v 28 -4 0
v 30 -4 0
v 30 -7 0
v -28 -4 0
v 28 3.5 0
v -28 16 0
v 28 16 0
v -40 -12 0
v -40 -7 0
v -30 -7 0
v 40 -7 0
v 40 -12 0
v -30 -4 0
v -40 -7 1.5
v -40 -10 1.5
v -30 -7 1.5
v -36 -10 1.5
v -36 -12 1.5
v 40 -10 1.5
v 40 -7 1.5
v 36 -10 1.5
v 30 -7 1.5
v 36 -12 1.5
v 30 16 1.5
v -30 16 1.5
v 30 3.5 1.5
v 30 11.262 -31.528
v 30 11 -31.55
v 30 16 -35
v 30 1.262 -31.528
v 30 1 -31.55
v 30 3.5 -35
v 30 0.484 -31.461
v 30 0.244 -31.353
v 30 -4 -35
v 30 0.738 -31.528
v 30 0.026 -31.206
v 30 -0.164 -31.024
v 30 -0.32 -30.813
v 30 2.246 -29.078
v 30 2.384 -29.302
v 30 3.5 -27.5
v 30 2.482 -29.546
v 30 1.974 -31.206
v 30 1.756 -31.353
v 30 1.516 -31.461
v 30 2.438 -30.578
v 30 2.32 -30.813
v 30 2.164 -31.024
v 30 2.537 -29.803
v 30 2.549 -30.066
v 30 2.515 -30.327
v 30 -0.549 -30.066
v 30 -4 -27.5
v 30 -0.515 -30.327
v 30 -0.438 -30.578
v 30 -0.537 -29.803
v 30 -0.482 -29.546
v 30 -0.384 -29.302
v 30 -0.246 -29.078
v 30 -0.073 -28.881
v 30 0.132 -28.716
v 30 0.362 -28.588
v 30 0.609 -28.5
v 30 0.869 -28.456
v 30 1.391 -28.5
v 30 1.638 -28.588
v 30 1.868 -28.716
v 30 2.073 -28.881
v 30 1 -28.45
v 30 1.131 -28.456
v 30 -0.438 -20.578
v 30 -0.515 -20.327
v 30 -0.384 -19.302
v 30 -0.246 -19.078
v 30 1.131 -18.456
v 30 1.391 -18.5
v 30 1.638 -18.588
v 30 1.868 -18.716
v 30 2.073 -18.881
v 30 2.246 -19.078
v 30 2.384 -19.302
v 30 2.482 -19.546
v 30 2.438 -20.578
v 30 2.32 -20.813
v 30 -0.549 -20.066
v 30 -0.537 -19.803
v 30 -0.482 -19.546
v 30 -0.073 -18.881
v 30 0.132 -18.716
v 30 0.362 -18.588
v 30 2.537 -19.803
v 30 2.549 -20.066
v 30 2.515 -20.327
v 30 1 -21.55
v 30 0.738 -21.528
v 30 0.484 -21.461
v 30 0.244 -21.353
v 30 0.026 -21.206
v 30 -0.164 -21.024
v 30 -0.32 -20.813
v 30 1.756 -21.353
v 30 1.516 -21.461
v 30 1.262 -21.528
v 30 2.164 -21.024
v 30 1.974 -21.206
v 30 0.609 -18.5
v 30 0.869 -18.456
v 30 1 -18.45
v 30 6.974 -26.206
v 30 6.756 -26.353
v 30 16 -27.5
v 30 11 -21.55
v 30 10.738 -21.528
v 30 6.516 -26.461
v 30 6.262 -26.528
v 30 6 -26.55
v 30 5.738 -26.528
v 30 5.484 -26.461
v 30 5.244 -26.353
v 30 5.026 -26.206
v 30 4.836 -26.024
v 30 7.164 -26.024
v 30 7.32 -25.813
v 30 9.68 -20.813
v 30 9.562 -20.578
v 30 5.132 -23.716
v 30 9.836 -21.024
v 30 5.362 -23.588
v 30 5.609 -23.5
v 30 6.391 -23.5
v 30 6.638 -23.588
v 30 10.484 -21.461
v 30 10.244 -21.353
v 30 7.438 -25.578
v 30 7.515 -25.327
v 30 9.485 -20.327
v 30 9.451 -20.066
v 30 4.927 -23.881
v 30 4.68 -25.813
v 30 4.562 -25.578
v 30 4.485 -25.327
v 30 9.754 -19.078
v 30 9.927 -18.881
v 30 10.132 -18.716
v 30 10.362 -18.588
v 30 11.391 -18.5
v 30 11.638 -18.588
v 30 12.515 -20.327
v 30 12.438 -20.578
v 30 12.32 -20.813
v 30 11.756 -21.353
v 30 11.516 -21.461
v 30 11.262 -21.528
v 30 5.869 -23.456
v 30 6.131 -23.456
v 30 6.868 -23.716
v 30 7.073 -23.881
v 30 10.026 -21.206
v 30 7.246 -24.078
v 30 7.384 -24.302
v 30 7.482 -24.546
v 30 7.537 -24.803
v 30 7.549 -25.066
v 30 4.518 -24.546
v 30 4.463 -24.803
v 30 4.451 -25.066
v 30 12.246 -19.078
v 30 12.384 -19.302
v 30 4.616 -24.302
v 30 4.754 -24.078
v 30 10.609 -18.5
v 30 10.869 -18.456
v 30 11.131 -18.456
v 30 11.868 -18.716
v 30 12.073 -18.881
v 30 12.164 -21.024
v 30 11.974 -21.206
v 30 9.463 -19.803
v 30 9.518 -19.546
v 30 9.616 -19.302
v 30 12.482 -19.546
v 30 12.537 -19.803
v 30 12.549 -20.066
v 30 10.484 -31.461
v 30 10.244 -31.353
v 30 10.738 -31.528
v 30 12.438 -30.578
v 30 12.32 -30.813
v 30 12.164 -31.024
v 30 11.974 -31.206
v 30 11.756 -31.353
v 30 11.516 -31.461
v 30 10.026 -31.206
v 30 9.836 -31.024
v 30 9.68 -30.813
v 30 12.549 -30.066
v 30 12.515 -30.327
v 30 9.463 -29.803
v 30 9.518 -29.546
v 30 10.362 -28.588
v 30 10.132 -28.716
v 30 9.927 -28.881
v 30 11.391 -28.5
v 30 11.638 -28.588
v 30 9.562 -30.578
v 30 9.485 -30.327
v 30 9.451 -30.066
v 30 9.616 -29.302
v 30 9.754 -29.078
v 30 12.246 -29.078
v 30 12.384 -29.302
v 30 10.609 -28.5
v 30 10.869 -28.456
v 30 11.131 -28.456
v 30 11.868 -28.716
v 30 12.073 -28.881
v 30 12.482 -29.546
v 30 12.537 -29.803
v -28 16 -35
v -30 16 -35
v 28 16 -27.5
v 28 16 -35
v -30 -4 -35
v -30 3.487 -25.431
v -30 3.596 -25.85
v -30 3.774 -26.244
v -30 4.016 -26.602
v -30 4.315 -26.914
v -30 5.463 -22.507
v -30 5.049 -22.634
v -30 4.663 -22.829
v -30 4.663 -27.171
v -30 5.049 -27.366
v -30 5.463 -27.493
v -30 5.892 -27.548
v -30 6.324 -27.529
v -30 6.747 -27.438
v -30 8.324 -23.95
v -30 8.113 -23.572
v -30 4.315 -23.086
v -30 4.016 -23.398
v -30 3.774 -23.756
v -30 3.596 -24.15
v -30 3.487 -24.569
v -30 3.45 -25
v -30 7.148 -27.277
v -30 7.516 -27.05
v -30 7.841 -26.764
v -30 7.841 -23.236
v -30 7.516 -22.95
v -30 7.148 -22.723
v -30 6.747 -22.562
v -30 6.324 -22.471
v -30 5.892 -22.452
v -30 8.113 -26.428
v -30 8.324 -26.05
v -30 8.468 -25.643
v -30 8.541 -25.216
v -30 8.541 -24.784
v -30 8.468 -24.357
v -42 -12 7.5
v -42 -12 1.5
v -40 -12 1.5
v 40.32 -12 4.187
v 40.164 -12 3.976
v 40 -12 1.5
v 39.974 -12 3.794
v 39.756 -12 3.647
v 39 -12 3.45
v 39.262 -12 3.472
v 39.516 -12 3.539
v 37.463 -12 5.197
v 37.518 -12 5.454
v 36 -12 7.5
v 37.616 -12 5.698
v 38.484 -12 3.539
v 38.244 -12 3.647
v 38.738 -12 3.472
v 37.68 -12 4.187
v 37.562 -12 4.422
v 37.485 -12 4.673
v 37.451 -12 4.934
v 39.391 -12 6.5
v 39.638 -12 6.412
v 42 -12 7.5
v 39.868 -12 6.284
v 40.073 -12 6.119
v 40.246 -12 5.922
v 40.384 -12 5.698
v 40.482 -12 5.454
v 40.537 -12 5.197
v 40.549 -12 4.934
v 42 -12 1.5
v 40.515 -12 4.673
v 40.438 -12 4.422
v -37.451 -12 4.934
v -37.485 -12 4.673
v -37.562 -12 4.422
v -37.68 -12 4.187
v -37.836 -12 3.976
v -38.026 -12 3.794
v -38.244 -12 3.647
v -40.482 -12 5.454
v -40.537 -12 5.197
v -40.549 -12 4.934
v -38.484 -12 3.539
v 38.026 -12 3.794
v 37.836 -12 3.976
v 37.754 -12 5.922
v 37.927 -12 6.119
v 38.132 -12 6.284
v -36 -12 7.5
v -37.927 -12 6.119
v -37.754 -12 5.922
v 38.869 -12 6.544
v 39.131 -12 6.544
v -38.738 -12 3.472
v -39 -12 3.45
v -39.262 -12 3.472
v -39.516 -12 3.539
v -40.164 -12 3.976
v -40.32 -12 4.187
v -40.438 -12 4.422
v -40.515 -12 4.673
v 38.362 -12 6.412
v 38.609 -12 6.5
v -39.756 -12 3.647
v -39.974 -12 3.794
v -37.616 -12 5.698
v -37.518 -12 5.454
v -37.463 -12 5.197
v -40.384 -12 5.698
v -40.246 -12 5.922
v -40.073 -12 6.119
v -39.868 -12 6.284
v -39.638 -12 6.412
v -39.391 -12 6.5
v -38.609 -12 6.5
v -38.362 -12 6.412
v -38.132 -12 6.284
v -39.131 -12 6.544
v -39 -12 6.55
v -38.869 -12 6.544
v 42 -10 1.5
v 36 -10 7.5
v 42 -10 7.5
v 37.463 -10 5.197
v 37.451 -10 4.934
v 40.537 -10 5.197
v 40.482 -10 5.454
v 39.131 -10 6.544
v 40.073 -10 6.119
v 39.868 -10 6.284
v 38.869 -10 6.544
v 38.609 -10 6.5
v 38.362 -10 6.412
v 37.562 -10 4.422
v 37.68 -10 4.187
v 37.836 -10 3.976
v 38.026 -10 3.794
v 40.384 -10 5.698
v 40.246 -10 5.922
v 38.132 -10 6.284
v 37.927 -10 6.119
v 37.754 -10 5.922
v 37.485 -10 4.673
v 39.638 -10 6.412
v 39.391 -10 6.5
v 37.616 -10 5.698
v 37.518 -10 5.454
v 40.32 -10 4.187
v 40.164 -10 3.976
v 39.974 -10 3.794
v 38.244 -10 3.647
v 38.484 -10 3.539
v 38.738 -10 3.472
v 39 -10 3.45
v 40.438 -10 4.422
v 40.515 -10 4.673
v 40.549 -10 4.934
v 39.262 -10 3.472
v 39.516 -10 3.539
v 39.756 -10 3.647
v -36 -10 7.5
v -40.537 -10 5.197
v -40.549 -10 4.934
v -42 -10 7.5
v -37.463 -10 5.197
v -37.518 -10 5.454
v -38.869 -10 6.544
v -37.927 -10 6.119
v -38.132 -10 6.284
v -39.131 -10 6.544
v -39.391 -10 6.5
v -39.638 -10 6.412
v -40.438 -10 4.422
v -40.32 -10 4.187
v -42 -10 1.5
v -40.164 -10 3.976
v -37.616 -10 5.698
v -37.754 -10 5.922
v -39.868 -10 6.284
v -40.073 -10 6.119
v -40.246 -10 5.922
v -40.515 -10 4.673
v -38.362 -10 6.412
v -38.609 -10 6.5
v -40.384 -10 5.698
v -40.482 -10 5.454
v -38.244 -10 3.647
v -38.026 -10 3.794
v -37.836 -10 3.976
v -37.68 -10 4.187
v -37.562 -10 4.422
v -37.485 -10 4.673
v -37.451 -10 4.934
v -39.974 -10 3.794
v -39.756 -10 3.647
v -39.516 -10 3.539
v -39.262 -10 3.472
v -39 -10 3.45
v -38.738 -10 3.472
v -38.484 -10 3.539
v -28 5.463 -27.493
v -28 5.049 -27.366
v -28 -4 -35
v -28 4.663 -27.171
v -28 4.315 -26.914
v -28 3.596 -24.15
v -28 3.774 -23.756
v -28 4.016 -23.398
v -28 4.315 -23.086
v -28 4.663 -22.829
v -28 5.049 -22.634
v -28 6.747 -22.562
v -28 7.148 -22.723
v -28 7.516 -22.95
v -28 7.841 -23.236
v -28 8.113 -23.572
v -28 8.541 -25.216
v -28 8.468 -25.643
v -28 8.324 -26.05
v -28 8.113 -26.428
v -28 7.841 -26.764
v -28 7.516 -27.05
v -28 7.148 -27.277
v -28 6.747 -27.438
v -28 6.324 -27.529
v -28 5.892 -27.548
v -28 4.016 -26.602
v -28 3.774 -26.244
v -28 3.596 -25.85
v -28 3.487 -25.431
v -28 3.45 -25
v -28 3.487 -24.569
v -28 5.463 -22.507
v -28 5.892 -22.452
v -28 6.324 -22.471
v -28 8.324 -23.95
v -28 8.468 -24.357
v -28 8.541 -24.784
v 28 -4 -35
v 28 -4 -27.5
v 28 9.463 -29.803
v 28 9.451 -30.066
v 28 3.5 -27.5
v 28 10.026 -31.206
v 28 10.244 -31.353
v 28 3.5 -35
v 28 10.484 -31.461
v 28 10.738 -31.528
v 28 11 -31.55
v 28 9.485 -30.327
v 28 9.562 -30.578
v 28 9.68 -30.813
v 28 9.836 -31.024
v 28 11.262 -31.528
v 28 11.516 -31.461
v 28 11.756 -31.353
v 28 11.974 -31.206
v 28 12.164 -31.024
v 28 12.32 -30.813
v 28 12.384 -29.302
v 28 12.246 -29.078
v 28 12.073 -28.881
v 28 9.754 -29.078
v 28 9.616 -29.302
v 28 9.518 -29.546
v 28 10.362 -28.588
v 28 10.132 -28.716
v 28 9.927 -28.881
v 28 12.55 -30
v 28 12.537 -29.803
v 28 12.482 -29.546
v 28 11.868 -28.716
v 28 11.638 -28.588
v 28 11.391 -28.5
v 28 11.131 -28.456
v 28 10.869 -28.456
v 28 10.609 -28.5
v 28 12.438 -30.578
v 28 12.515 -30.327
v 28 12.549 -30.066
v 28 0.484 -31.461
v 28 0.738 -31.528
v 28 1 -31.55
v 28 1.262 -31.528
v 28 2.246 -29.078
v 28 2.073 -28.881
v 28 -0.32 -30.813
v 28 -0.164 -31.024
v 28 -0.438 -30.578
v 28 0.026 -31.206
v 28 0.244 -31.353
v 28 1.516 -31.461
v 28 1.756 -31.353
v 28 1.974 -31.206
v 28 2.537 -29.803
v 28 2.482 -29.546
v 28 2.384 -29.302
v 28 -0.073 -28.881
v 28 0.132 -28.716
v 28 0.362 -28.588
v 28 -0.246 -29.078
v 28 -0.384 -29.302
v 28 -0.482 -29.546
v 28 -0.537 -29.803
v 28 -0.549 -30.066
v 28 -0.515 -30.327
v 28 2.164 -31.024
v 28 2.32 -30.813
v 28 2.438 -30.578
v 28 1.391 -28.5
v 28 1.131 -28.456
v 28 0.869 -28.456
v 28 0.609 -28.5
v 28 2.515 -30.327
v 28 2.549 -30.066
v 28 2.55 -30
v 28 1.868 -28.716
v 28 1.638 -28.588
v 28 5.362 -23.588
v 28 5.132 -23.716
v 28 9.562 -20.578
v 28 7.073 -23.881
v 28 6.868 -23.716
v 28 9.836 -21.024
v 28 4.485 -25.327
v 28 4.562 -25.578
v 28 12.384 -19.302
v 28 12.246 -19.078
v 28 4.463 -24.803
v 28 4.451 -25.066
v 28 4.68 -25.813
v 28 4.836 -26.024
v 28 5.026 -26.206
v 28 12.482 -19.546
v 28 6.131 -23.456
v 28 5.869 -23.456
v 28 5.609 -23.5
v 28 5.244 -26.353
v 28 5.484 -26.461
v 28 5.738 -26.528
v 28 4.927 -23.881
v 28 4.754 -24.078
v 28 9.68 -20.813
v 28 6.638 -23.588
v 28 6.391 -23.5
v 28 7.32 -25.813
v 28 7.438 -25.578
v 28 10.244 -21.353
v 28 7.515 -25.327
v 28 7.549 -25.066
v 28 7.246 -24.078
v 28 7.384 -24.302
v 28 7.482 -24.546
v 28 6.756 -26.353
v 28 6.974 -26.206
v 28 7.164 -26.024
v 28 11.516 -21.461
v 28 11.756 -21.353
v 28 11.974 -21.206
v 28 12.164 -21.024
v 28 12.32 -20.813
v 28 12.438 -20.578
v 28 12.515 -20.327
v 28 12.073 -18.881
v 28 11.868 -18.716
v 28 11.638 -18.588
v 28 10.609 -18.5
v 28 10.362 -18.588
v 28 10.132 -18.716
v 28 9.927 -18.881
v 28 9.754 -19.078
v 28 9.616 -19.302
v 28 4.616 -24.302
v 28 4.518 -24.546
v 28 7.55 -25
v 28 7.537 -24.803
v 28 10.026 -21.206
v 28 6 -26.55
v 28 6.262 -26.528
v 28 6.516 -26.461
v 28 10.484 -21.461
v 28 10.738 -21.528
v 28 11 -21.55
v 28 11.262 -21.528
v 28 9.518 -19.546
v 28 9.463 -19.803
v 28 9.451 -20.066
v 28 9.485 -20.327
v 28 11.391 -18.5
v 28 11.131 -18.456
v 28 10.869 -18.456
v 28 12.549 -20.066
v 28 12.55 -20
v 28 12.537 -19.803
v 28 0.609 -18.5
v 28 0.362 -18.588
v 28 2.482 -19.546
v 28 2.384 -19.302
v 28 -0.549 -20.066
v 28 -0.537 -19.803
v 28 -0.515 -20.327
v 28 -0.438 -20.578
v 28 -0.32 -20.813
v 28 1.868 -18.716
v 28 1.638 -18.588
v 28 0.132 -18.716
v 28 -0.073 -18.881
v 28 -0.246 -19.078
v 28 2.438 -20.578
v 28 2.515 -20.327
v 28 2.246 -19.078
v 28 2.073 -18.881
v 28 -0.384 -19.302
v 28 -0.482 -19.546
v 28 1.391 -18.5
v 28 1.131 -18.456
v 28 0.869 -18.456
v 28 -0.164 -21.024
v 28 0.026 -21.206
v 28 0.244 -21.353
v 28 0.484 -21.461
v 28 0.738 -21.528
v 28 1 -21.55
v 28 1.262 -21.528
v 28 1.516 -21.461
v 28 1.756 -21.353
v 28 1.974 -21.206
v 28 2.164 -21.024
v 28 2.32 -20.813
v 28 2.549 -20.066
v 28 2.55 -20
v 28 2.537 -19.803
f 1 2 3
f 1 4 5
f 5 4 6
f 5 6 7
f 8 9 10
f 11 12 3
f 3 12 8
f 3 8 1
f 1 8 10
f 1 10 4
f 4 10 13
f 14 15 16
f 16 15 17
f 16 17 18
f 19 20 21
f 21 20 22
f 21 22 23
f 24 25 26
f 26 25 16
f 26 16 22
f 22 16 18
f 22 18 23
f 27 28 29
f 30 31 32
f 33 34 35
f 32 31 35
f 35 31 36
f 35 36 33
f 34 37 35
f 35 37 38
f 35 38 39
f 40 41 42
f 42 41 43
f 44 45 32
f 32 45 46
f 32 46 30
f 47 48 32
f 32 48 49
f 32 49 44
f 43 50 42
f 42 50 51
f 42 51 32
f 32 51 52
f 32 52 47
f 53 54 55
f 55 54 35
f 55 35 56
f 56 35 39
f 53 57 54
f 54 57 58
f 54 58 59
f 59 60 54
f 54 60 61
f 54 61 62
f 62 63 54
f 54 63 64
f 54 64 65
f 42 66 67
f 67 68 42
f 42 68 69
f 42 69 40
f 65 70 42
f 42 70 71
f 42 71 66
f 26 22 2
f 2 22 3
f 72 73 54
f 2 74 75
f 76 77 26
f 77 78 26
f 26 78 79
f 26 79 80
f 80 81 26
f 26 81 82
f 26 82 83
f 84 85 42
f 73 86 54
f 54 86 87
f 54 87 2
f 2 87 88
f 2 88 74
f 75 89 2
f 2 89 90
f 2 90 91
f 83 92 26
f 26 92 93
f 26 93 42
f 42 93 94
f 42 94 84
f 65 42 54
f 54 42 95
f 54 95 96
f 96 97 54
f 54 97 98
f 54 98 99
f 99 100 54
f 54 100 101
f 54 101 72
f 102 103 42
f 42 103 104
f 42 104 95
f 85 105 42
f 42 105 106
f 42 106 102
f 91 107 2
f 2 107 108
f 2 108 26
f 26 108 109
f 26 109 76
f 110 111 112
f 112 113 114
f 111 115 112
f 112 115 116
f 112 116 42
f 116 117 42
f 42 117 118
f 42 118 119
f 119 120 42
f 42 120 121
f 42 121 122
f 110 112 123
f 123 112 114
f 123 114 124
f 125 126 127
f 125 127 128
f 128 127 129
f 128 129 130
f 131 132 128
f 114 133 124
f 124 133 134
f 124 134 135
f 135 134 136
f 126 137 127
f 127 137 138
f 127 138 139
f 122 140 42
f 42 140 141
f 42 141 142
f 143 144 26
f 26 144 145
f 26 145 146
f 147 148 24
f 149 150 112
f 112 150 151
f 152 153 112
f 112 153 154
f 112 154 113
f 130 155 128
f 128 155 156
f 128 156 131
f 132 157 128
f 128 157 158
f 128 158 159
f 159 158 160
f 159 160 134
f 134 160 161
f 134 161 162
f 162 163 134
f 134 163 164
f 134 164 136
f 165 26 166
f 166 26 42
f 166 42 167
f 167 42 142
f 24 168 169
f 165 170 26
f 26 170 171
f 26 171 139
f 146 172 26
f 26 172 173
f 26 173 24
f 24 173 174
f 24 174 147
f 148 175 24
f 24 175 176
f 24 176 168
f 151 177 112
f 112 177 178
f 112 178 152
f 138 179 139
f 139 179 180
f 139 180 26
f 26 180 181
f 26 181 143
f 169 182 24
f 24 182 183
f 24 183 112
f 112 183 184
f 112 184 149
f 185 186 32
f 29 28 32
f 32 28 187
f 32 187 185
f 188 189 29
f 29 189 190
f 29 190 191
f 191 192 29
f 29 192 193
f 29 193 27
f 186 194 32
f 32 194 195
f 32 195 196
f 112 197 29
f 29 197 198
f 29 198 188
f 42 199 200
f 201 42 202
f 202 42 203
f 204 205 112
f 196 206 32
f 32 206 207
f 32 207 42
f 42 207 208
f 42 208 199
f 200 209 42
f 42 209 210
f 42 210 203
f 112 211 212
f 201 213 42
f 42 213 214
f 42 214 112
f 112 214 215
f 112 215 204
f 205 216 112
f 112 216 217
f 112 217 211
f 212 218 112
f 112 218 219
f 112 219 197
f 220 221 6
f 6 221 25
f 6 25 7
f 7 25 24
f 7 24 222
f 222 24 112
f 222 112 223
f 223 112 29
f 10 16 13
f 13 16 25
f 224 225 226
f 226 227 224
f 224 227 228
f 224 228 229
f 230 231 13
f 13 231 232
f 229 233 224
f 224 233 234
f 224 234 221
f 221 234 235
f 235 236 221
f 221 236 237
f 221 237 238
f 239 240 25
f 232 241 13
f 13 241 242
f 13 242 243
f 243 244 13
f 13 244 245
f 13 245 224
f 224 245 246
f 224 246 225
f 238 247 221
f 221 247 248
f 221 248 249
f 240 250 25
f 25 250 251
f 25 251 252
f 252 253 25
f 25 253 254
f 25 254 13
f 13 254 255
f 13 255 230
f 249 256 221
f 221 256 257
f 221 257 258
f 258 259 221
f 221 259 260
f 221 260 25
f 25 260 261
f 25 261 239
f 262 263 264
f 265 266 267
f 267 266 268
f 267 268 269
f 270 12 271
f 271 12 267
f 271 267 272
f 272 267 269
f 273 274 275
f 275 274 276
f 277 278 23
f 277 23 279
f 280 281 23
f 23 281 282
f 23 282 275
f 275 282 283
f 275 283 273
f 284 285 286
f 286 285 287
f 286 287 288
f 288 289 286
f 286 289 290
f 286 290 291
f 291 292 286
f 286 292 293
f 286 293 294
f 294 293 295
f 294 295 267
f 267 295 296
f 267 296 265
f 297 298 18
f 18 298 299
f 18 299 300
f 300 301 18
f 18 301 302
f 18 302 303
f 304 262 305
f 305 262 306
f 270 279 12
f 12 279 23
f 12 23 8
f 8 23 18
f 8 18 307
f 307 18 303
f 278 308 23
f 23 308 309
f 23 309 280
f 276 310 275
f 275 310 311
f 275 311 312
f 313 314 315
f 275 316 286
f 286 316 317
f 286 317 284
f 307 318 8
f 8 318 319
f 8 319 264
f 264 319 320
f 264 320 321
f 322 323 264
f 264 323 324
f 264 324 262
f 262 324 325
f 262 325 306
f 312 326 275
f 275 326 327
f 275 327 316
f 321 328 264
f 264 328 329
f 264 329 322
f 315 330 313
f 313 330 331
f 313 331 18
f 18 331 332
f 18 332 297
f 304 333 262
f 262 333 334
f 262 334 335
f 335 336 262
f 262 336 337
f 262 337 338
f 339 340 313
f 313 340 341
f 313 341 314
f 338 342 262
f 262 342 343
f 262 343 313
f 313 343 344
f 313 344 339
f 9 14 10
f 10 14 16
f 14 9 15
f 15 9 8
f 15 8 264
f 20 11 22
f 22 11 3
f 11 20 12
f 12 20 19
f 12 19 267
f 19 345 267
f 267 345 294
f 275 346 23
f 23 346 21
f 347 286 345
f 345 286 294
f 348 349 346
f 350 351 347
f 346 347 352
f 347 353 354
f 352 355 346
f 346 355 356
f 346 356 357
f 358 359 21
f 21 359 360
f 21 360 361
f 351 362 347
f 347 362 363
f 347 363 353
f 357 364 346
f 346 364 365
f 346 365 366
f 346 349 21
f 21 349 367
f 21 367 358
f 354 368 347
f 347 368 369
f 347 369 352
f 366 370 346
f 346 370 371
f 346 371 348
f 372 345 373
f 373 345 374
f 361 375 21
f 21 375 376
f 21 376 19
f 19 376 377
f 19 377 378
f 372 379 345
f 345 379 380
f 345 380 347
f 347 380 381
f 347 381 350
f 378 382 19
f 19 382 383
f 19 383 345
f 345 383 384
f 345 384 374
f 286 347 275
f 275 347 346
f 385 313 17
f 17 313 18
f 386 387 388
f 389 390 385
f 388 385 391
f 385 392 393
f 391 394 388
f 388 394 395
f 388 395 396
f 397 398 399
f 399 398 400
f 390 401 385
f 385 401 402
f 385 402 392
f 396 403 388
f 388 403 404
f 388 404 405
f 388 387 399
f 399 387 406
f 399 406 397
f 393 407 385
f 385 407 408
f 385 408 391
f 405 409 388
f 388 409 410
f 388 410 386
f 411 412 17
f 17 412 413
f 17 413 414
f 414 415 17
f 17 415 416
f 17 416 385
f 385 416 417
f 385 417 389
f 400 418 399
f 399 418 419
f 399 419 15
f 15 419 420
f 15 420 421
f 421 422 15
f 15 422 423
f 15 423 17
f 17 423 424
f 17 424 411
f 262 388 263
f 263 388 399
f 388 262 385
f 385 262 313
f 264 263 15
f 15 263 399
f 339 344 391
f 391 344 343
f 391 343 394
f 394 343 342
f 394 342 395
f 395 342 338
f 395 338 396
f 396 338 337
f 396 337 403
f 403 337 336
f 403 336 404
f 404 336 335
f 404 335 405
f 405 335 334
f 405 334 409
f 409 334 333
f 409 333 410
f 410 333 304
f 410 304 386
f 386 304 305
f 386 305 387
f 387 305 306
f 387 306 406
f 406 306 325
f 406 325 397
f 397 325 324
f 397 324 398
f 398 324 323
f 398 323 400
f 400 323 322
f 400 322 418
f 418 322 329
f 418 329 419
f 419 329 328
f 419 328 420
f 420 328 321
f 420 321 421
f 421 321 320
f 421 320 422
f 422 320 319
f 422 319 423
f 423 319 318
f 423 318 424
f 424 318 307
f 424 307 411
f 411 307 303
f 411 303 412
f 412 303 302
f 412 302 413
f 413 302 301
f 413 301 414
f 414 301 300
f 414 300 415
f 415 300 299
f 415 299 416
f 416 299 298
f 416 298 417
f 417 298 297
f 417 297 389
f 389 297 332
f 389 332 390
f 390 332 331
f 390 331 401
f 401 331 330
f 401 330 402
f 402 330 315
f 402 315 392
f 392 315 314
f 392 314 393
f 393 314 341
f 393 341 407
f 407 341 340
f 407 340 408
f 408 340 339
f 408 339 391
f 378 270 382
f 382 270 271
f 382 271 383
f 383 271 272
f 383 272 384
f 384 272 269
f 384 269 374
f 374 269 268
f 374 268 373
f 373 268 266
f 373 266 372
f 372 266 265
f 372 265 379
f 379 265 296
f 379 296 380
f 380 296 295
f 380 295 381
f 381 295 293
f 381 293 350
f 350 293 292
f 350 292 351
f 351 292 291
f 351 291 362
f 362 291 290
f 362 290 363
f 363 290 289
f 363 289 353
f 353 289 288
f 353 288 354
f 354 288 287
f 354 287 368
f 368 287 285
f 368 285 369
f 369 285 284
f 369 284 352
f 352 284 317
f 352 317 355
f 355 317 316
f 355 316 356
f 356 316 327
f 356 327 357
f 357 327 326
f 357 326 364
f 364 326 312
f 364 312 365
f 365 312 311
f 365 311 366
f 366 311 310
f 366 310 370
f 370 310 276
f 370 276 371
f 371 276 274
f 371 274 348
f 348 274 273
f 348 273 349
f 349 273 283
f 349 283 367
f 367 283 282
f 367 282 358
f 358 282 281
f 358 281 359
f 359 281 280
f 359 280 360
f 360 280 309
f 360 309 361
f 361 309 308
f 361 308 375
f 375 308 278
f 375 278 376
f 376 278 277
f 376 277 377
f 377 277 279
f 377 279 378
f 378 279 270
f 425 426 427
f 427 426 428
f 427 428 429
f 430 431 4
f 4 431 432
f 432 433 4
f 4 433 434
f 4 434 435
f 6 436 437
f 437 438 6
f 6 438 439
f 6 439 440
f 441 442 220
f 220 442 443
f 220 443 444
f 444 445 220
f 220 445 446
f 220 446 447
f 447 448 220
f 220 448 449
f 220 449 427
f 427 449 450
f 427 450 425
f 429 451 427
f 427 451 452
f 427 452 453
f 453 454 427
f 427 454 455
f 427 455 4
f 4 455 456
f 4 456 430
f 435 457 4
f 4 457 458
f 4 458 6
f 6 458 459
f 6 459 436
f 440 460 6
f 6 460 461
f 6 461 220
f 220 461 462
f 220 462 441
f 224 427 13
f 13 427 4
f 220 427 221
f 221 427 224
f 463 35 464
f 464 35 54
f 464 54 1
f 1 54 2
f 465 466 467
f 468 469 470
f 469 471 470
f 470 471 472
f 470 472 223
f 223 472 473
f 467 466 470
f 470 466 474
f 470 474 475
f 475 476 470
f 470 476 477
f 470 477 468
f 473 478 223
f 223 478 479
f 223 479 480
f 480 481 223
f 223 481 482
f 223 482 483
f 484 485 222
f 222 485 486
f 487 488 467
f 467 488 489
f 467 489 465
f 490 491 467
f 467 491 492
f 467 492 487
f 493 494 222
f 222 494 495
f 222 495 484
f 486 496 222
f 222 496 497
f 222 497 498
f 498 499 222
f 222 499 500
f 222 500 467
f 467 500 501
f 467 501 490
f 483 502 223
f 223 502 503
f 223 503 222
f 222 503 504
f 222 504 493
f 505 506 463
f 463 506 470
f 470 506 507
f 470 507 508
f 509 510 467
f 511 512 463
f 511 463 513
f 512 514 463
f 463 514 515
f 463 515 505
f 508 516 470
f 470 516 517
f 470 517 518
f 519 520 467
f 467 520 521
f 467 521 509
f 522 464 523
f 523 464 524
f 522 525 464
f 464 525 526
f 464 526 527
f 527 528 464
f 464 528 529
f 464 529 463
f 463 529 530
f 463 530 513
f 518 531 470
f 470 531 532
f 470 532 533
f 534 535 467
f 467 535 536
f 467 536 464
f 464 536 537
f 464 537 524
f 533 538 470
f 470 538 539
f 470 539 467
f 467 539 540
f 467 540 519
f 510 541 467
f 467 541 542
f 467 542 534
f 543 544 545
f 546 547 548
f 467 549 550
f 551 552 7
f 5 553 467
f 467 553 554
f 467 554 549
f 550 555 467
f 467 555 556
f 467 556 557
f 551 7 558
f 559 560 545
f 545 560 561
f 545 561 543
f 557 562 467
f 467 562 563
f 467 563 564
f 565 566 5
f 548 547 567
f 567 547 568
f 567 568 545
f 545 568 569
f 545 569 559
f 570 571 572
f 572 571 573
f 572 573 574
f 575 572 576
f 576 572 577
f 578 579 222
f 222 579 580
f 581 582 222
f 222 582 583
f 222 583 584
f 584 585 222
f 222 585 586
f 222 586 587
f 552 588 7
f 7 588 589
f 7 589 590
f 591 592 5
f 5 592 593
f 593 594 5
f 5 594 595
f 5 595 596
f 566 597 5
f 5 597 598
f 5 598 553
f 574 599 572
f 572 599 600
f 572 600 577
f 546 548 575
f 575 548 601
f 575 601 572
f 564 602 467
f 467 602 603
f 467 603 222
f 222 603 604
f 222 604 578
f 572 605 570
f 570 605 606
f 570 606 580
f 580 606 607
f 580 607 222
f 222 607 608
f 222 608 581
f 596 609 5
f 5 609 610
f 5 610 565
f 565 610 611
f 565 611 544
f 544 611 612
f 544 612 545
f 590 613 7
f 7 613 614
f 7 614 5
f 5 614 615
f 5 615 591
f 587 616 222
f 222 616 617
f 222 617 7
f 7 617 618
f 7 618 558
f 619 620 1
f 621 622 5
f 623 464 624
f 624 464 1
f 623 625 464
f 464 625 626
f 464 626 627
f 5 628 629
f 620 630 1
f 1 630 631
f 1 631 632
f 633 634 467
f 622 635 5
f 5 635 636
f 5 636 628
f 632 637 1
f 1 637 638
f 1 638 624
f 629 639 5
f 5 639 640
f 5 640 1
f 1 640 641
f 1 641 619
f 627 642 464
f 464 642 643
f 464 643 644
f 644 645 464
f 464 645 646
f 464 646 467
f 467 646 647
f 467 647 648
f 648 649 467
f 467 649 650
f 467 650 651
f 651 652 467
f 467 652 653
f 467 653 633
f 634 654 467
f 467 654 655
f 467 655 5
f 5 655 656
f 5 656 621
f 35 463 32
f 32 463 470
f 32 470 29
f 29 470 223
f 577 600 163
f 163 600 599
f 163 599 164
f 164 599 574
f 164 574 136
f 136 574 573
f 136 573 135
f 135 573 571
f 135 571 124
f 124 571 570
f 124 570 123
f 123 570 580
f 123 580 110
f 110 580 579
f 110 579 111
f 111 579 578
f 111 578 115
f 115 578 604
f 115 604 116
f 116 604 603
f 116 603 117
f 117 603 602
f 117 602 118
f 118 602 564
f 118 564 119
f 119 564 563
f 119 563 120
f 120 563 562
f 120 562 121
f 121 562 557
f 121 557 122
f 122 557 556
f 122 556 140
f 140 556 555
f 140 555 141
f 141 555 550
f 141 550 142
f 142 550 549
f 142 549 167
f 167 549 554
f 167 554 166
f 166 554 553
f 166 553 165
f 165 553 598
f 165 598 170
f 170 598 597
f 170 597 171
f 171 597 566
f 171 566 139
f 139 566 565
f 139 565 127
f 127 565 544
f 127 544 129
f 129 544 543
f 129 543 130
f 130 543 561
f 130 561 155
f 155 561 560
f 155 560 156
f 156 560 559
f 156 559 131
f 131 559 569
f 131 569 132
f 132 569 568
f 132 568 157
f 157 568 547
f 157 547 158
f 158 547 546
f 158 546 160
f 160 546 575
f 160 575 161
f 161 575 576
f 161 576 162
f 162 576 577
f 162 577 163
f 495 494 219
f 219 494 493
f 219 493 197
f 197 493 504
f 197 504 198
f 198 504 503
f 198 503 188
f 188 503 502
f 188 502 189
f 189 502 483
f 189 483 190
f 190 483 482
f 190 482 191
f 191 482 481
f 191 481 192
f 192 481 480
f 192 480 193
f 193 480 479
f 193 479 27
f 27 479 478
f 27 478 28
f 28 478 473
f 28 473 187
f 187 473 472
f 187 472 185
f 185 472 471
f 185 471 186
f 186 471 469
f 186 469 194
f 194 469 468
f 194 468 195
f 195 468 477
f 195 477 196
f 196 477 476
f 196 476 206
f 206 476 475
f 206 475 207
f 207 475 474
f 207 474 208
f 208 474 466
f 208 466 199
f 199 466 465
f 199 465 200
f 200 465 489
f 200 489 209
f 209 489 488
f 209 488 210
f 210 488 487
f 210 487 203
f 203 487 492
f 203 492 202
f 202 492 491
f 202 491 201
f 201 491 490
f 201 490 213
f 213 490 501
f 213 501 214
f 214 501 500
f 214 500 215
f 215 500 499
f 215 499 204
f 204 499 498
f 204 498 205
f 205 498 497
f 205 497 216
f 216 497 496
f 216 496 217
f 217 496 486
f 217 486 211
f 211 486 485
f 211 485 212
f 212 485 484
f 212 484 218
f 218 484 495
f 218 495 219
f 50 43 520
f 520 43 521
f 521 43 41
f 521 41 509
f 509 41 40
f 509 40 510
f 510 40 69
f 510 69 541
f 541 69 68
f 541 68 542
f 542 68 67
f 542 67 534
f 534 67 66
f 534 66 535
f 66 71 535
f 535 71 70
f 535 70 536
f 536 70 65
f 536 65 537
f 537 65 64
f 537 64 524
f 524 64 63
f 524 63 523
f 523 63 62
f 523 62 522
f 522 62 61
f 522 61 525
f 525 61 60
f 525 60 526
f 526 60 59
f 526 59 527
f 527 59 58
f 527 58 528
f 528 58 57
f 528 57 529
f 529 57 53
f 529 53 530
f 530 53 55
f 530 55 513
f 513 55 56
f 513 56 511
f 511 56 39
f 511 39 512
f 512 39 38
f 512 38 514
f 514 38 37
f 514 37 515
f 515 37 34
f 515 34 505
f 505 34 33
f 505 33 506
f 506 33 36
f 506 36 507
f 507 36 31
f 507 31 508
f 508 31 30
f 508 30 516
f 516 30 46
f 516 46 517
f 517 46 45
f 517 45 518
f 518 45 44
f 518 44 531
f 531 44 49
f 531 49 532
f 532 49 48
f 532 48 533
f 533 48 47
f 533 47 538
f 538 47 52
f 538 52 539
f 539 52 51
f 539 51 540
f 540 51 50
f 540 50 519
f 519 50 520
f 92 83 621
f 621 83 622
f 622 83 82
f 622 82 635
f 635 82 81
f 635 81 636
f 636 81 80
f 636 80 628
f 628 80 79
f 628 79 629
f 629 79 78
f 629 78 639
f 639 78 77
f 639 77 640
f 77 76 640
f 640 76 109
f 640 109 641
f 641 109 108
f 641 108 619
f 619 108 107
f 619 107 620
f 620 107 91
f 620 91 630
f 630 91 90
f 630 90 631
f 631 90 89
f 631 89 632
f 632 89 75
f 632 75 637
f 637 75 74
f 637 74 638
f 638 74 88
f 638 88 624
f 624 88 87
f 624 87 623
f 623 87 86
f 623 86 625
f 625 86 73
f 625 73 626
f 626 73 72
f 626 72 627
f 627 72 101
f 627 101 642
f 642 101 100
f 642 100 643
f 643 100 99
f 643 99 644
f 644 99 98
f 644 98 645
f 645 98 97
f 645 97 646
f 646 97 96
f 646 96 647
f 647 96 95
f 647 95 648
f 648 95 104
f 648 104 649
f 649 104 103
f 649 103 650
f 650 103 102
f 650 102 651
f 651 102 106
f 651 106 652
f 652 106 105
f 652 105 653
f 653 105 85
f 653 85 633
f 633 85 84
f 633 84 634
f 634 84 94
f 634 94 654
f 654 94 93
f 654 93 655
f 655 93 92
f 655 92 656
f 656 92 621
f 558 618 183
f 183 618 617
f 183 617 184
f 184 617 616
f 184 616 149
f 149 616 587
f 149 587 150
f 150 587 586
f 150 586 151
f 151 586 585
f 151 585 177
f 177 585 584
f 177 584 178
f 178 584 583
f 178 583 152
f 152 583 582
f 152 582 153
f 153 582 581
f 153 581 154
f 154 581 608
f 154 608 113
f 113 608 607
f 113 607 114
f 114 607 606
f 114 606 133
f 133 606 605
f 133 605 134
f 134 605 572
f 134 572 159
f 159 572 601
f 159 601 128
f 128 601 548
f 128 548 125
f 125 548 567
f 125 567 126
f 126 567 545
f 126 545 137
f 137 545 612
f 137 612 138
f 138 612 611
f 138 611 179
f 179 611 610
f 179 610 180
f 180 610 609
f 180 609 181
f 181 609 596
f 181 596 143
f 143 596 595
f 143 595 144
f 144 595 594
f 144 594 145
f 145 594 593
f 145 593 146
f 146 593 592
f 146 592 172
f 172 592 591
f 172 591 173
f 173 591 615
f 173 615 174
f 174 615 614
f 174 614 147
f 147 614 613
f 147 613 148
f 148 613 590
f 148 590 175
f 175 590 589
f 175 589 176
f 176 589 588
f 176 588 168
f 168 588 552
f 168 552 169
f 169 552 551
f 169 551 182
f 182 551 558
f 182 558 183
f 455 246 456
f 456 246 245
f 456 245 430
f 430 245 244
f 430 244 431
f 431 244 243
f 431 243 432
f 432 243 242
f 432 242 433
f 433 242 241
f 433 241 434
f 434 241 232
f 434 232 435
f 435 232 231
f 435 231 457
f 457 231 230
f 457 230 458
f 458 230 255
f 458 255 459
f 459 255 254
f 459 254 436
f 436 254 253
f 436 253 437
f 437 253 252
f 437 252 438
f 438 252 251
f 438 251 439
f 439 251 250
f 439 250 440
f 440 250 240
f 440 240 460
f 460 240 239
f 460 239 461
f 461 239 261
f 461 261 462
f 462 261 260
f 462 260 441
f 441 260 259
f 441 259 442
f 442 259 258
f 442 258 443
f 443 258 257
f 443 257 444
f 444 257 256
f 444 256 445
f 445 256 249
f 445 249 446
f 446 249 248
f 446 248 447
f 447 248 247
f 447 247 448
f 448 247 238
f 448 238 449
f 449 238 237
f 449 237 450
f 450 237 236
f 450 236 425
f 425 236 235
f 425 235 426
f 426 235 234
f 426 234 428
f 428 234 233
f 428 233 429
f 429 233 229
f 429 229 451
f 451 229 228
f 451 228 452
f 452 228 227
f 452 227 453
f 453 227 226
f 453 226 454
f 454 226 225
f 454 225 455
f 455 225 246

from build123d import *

# Parameters (mm, degrees)
EXTRUDE_1_DEPTH     = 1.5
EXTRUDE_2_DEPTH     = 1.5
SKETCH_3_W          = 6
SKETCH_3_H          = 2
EXTRUDE_3_DEPTH     = 6
SKETCH_4_R          = 1.55
CUT_EXTRUDE_1_DEPTH = 4.5
SKETCH_5_W          = 2
SKETCH_5_H          = 20
EXTRUDE_4_DEPTH     = 35
SKETCH_6_R          = 1.55
CUT_EXTRUDE_2_DEPTH = 35
SKETCH_7_R          = 2.55
CUT_EXTRUDE_4_DEPTH = 35


with BuildPart() as part:
    # 草图1 → 凸台-拉伸1 (new body)
    with BuildSketch(Plane.XY):
        Polygon((-30, 12), (-30, -12), (30, -12), (30, 12), (30, 16), (-30, 16), align=None)
    extrude(amount=EXTRUDE_1_DEPTH)

    # 草图2 → 凸台-拉伸2 (add)
    with BuildSketch(Plane.XY.offset(1.5)):
        Polygon((-40, -7), (-30, -7), (-27, -7), (-27, -12), (-30, -12), (-40, -12), align=None)
        Polygon((40, -7), (40, -12), (30, -12), (27, -12), (27, -7), (30, -7), align=None)
    extrude(amount=-EXTRUDE_2_DEPTH)

    # 草图3 → 凸台-拉伸3 (add)
    with BuildSketch(Plane.XY.offset(1.5)):
        with Locations((39, -11)):
            Rectangle(SKETCH_3_W, SKETCH_3_H)
        with Locations((-39, -11)):
            Rectangle(SKETCH_3_W, SKETCH_3_H)
    extrude(amount=EXTRUDE_3_DEPTH)

    # 草图4 → 切除-拉伸1 (cut)
    with BuildSketch(Plane.XZ.offset(12)):
        with Locations(Location((39, 5, 0), (0, 0, 270))):
            Circle(SKETCH_4_R)
        with Locations(Location((-39, 5, 0), (0, 0, 270))):
            Circle(SKETCH_4_R)
    extrude(amount=-CUT_EXTRUDE_1_DEPTH, mode=Mode.SUBTRACT)

    # 草图5 → 凸台-拉伸4 (add)
    with BuildSketch(Plane(origin=(0, 0, 0), x_dir=(-1, 0, 0), z_dir=(0, 0, -1))):
        with Locations((29, 6)):
            Rectangle(SKETCH_5_W, SKETCH_5_H)
        with Locations((-29, 6)):
            Rectangle(SKETCH_5_W, SKETCH_5_H)
    extrude(amount=EXTRUDE_4_DEPTH)

    # 草图6 → 切除-拉伸2 (cut)
    with BuildSketch(Plane(origin=(30, 0, 0), x_dir=(0, 0, -1), z_dir=(1, 0, 0))):
        with Locations((25, 6)):
            Circle(SKETCH_6_R)
        with Locations((30, 11)):
            Circle(SKETCH_6_R)
        with Locations(Location((30, 1, 0), (0, 0, 90))):
            Circle(SKETCH_6_R)
        with Locations(Location((20, 1, 0), (0, 0, 90))):
            Circle(SKETCH_6_R)
        with Locations((20, 11)):
            Circle(SKETCH_6_R)
    extrude(amount=-CUT_EXTRUDE_2_DEPTH, mode=Mode.SUBTRACT)

    # 草图7 → 切除-拉伸4 (cut)
    with BuildSketch(Plane.ZY.offset(30)):
        with Locations(Location((-25, 6, 0), (0, 0, 270))):
            Circle(SKETCH_7_R)
    extrude(amount=-CUT_EXTRUDE_4_DEPTH, mode=Mode.SUBTRACT)


solid = part.part
